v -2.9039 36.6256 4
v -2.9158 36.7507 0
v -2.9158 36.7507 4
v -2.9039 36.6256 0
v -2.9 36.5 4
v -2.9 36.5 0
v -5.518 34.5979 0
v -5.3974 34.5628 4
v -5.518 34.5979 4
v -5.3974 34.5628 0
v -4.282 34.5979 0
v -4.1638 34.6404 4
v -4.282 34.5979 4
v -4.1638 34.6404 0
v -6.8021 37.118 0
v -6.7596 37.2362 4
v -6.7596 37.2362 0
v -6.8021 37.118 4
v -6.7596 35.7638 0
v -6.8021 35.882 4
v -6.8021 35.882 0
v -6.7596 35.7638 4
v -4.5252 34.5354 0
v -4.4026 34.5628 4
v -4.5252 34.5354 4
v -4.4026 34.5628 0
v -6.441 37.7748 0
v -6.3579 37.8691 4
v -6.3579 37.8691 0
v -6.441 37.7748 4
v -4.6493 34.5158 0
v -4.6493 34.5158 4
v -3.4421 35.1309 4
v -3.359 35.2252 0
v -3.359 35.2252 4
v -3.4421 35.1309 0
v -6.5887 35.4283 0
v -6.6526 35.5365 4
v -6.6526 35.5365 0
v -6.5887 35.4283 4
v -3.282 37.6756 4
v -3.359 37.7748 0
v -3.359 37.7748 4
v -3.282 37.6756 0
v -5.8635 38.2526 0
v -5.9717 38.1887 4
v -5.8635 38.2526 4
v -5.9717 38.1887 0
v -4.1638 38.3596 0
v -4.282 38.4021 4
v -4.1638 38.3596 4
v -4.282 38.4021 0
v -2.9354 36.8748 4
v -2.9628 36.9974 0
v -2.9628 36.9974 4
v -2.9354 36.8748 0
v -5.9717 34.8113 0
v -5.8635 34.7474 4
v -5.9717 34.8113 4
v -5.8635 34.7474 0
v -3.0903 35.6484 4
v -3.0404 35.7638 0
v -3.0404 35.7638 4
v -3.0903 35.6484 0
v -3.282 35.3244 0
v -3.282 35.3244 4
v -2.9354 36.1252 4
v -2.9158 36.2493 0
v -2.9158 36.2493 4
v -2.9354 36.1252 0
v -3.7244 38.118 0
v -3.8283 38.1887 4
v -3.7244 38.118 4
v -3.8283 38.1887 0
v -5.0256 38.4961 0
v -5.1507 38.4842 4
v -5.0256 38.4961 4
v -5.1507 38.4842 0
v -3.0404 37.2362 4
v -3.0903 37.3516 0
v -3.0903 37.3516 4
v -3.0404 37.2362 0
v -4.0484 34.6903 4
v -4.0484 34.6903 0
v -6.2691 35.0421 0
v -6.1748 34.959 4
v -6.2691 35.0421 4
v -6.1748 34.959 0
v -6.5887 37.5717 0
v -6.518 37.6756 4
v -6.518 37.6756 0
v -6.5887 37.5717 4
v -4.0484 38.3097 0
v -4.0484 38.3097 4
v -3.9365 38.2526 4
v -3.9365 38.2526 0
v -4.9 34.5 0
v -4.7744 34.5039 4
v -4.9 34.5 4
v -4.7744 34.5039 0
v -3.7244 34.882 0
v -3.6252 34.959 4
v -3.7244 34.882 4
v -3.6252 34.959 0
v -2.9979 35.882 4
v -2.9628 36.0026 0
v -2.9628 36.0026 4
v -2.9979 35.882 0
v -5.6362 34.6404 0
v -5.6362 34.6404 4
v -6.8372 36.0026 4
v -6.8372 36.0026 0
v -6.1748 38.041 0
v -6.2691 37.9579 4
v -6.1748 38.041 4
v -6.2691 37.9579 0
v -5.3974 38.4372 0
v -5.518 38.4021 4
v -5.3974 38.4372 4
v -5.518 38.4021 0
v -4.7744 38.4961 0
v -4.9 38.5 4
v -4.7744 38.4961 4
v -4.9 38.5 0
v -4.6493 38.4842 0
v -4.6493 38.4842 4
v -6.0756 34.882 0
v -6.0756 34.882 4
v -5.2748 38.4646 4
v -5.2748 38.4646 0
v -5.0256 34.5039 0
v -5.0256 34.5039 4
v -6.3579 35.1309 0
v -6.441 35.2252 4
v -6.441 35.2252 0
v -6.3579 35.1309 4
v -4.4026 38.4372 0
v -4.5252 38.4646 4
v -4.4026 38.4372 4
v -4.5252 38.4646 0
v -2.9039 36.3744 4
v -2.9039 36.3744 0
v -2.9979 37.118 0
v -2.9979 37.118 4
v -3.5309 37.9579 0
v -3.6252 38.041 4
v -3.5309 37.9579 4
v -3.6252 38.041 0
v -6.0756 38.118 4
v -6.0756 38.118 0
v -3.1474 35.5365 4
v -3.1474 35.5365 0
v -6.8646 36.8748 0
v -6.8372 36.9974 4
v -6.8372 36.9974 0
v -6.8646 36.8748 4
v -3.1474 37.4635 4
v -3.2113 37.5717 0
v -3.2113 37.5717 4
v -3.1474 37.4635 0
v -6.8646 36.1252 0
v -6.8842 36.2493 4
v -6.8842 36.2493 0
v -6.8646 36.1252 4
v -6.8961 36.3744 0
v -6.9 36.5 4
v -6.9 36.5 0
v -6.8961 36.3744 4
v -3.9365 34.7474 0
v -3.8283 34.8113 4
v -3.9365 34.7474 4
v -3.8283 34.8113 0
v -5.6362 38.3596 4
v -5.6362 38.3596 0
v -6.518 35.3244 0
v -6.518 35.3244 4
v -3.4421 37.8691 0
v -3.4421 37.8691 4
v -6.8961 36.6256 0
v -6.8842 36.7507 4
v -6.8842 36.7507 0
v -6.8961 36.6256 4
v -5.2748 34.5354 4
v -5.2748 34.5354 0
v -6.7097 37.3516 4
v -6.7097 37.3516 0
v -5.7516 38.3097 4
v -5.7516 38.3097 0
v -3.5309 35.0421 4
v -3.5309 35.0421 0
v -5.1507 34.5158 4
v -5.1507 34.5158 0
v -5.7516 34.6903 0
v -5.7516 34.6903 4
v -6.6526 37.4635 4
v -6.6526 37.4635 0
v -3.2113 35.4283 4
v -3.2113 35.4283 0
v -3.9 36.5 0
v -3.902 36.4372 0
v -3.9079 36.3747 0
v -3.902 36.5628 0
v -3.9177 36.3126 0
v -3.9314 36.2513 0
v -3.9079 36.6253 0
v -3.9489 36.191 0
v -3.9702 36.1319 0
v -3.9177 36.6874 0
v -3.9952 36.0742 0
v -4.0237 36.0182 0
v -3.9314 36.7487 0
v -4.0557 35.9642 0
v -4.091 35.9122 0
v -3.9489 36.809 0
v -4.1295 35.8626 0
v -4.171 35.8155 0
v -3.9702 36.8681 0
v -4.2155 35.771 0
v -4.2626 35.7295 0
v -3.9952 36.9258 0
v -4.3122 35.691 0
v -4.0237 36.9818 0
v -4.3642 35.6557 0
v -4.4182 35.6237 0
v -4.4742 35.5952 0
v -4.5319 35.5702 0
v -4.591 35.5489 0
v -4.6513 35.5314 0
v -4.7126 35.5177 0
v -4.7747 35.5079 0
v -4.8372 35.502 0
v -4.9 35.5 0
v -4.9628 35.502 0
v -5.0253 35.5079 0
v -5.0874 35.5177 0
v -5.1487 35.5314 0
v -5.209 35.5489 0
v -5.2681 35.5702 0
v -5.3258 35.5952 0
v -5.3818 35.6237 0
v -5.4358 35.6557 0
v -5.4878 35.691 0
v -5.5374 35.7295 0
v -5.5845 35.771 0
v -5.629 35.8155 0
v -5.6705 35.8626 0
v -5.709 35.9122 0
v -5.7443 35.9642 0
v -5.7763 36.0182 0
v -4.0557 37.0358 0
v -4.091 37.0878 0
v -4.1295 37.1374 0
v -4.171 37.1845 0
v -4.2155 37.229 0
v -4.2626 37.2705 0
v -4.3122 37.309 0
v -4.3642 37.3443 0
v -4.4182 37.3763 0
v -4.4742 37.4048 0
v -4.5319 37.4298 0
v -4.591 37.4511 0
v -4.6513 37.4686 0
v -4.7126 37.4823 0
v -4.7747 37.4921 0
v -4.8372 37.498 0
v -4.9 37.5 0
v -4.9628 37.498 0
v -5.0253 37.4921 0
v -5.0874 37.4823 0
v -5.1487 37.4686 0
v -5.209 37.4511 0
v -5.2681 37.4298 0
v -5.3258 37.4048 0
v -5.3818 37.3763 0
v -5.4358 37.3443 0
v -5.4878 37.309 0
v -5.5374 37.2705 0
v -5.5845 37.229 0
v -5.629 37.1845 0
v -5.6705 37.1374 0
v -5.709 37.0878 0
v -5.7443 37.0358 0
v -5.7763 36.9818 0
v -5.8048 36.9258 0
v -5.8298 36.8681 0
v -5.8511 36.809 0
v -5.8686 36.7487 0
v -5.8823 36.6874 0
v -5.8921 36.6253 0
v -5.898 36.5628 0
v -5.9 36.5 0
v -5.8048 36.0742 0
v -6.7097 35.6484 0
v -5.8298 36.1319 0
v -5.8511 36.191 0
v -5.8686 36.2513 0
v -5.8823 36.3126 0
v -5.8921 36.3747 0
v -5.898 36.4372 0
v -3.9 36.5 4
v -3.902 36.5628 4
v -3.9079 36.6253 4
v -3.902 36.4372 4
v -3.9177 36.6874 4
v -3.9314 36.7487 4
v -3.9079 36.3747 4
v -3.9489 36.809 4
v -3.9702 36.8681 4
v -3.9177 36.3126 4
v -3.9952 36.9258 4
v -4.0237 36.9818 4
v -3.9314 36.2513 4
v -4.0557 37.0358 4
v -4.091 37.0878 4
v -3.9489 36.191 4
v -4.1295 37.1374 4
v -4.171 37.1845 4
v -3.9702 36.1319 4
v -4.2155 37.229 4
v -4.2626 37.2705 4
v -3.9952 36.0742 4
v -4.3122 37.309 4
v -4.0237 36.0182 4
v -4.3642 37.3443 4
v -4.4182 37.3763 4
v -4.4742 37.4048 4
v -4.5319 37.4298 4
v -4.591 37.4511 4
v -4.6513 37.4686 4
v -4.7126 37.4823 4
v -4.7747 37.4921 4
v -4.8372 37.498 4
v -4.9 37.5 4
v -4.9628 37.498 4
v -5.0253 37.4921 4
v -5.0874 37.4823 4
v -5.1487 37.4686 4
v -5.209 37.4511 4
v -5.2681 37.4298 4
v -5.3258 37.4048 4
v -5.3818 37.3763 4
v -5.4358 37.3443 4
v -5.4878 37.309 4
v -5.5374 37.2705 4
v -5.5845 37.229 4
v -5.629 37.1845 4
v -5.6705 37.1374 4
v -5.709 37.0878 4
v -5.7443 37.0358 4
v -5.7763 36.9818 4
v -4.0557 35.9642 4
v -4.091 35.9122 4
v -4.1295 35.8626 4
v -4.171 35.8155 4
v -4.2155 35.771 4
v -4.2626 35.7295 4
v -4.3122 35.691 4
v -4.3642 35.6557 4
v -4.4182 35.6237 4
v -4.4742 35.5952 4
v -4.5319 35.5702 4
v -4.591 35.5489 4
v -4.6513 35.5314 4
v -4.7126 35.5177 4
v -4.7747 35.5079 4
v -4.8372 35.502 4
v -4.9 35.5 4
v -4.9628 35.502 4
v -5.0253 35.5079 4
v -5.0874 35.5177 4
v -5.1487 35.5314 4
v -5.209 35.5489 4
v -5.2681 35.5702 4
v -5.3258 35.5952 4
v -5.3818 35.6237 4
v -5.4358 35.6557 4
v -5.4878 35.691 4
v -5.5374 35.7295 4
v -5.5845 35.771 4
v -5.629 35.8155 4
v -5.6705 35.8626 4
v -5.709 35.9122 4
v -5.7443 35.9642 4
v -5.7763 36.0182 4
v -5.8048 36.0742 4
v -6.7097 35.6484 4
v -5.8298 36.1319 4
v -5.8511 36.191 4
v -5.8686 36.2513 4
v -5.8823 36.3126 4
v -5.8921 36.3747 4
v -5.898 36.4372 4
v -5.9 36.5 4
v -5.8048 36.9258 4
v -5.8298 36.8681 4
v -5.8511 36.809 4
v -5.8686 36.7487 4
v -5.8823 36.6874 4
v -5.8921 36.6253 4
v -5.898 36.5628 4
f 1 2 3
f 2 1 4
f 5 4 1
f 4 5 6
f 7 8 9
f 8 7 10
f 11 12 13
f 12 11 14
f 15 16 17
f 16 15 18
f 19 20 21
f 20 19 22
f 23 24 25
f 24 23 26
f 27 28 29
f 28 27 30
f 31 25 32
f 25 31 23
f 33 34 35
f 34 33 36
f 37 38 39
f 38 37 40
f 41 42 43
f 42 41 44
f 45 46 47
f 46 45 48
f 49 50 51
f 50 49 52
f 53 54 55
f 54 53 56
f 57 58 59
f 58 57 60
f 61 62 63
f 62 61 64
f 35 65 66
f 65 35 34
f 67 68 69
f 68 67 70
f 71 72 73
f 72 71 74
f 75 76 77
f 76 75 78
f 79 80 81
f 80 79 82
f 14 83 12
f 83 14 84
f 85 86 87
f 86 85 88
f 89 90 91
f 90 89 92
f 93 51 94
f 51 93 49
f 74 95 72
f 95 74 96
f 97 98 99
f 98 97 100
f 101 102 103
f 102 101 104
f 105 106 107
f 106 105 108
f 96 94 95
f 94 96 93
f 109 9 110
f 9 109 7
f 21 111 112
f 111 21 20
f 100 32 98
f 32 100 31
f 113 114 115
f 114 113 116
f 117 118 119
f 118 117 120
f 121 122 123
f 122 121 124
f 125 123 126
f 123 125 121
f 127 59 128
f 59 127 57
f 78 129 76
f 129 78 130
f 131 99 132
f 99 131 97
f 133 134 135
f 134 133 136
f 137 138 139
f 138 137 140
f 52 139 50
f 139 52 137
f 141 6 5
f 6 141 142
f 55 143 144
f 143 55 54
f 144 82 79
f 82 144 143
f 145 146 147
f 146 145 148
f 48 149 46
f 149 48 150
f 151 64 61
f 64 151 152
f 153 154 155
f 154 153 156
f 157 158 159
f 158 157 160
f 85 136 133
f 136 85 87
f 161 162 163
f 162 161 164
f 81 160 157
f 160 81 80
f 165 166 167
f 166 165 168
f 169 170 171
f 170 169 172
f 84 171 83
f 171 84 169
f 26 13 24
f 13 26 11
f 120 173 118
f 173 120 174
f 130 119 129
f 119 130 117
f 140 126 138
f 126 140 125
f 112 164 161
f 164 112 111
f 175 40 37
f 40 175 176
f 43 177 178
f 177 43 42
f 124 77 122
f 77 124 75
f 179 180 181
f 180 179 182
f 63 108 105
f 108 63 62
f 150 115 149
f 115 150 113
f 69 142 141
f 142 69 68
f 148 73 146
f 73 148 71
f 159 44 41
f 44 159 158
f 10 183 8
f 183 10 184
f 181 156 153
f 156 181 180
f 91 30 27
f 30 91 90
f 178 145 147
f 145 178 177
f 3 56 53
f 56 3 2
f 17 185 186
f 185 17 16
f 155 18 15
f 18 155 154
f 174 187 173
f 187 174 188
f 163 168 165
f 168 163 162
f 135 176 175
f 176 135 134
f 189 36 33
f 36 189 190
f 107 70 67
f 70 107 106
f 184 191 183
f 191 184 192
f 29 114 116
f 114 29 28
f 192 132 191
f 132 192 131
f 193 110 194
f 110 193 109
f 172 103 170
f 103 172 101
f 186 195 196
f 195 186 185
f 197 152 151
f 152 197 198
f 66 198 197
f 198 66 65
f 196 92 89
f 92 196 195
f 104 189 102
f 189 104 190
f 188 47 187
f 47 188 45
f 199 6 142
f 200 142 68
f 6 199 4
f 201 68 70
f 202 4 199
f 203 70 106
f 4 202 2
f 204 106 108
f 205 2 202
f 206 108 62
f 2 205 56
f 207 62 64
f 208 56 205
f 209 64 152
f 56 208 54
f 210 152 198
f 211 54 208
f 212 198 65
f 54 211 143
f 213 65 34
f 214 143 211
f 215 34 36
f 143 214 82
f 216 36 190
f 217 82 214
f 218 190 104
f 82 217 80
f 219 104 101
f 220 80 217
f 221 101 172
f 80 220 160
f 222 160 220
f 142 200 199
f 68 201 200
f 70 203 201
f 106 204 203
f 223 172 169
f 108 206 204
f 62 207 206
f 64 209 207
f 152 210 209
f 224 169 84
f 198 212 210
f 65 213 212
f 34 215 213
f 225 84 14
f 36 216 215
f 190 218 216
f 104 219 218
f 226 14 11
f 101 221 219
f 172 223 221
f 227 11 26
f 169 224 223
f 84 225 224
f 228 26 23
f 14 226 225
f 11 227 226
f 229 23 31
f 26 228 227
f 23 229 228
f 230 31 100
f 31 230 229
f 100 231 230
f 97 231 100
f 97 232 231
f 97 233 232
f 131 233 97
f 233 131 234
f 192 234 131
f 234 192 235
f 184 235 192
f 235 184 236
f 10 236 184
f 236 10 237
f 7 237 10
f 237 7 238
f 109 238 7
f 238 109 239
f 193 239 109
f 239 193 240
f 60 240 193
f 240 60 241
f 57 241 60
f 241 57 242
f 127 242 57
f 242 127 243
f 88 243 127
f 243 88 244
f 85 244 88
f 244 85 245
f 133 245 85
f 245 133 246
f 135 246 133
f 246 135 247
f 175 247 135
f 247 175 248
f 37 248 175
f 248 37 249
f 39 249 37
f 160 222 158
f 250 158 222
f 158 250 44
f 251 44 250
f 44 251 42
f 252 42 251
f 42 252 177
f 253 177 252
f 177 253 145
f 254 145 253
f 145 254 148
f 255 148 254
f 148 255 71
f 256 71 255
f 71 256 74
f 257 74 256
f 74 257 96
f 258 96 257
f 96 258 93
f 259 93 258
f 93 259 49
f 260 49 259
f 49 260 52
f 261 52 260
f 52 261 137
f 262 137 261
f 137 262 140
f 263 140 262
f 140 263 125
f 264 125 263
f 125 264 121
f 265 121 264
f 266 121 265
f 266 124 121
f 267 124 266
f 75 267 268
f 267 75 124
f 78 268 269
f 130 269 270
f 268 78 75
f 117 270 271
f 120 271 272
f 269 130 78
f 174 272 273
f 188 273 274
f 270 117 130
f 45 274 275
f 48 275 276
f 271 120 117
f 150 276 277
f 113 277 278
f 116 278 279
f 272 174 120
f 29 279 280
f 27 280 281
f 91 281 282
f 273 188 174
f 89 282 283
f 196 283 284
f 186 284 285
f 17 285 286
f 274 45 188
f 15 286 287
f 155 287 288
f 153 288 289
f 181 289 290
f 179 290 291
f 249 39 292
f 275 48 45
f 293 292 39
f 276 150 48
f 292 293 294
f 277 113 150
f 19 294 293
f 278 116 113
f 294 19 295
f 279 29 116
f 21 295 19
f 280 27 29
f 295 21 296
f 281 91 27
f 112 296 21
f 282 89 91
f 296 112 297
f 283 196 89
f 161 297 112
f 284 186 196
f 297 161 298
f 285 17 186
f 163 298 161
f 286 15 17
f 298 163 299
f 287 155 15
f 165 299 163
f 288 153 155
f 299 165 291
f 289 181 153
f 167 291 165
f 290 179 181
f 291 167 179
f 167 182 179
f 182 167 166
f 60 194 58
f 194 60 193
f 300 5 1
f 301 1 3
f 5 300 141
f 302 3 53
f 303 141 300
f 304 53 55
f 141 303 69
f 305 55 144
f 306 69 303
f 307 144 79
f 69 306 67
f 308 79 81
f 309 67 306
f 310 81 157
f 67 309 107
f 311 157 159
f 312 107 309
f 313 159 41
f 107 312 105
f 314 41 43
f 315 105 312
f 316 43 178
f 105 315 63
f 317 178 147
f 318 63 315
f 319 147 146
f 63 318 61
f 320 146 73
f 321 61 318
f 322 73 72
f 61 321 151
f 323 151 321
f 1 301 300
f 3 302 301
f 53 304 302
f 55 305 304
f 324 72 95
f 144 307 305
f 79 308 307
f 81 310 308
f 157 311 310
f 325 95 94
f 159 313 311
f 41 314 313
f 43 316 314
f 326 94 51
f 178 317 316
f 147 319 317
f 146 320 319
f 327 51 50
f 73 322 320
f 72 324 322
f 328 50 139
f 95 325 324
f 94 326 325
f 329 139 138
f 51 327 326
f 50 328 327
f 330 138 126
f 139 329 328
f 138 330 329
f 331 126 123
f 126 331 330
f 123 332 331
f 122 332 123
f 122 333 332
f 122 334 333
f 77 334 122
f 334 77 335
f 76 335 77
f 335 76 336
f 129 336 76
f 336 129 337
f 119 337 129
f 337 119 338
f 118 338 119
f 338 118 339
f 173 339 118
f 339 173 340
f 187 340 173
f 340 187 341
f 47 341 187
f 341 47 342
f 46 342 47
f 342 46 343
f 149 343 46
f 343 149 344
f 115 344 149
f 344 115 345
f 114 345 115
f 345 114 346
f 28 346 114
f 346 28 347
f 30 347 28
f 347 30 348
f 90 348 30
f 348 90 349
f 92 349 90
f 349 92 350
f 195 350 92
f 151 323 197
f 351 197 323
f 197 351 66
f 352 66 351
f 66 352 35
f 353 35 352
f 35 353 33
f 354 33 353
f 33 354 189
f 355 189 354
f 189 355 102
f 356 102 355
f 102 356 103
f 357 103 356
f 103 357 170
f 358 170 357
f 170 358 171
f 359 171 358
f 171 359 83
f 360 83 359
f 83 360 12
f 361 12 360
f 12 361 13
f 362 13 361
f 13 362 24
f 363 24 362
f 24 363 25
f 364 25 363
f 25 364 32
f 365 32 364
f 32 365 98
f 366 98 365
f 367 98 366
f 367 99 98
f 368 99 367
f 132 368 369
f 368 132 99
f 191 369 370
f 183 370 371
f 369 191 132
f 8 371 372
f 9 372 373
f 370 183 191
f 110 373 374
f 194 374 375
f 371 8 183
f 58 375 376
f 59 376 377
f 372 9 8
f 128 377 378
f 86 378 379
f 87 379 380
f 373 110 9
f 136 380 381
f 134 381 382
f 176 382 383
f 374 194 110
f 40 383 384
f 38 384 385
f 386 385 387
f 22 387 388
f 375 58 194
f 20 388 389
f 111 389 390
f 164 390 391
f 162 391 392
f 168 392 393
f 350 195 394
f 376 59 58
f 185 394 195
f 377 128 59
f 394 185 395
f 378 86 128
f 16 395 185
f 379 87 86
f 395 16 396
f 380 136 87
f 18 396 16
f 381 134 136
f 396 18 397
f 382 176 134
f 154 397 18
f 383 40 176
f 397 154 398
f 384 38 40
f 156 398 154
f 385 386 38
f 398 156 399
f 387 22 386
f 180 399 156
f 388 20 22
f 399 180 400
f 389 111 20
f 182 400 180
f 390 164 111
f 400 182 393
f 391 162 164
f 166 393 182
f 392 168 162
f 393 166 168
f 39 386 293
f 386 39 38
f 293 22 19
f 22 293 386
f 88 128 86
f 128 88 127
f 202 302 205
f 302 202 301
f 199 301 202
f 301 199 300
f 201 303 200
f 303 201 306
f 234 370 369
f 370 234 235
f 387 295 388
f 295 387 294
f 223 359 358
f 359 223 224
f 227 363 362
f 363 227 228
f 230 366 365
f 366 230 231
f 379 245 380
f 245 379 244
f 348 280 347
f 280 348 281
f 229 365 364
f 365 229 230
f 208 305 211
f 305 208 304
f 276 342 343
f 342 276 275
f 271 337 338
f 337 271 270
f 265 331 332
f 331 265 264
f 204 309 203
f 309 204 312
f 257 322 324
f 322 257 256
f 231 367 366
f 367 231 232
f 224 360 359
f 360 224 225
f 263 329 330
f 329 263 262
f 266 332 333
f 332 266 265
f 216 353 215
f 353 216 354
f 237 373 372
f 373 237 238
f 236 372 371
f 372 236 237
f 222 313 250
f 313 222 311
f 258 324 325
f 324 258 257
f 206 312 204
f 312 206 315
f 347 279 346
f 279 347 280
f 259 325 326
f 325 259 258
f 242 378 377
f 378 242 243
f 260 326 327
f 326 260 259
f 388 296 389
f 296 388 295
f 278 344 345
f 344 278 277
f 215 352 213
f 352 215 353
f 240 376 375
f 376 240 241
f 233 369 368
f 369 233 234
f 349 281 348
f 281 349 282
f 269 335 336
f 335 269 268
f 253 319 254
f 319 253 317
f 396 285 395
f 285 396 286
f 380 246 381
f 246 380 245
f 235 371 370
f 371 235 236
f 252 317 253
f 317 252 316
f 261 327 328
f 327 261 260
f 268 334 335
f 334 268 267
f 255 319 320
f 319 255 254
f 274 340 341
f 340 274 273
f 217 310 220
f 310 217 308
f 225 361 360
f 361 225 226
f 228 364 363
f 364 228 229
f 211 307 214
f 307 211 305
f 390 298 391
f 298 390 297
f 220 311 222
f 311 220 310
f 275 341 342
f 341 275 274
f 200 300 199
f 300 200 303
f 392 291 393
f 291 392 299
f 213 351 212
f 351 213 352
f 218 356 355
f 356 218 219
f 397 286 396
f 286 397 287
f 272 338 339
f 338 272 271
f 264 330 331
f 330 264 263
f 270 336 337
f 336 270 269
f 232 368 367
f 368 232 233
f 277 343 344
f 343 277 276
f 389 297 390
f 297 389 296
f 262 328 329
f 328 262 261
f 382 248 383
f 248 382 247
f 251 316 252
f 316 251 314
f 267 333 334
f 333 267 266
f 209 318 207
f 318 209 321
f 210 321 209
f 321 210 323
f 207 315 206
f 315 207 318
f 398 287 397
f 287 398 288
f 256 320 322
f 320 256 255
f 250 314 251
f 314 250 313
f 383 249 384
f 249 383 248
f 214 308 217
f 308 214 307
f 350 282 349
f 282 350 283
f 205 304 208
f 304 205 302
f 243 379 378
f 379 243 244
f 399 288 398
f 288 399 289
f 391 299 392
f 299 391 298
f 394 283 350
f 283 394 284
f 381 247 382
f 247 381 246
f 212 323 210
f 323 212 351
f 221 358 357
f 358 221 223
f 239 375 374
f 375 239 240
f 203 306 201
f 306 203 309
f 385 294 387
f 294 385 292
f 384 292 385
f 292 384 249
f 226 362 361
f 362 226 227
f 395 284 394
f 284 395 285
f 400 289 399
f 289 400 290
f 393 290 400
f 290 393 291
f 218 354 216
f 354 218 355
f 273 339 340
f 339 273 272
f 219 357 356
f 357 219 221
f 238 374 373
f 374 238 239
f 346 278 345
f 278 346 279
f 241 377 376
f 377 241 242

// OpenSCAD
//import("/home/lruzicka/3d-modely/trojrozmery/toyota/Toyota-Emblem-Small.stl");

translate([-4.9, 36.5, 0])
difference() {
cylinder(4, 2, 2, $fn=100);
translate([0, 0, -0.2])
    cylinder(5, 1, 1, $fn=100);   
 }

  
